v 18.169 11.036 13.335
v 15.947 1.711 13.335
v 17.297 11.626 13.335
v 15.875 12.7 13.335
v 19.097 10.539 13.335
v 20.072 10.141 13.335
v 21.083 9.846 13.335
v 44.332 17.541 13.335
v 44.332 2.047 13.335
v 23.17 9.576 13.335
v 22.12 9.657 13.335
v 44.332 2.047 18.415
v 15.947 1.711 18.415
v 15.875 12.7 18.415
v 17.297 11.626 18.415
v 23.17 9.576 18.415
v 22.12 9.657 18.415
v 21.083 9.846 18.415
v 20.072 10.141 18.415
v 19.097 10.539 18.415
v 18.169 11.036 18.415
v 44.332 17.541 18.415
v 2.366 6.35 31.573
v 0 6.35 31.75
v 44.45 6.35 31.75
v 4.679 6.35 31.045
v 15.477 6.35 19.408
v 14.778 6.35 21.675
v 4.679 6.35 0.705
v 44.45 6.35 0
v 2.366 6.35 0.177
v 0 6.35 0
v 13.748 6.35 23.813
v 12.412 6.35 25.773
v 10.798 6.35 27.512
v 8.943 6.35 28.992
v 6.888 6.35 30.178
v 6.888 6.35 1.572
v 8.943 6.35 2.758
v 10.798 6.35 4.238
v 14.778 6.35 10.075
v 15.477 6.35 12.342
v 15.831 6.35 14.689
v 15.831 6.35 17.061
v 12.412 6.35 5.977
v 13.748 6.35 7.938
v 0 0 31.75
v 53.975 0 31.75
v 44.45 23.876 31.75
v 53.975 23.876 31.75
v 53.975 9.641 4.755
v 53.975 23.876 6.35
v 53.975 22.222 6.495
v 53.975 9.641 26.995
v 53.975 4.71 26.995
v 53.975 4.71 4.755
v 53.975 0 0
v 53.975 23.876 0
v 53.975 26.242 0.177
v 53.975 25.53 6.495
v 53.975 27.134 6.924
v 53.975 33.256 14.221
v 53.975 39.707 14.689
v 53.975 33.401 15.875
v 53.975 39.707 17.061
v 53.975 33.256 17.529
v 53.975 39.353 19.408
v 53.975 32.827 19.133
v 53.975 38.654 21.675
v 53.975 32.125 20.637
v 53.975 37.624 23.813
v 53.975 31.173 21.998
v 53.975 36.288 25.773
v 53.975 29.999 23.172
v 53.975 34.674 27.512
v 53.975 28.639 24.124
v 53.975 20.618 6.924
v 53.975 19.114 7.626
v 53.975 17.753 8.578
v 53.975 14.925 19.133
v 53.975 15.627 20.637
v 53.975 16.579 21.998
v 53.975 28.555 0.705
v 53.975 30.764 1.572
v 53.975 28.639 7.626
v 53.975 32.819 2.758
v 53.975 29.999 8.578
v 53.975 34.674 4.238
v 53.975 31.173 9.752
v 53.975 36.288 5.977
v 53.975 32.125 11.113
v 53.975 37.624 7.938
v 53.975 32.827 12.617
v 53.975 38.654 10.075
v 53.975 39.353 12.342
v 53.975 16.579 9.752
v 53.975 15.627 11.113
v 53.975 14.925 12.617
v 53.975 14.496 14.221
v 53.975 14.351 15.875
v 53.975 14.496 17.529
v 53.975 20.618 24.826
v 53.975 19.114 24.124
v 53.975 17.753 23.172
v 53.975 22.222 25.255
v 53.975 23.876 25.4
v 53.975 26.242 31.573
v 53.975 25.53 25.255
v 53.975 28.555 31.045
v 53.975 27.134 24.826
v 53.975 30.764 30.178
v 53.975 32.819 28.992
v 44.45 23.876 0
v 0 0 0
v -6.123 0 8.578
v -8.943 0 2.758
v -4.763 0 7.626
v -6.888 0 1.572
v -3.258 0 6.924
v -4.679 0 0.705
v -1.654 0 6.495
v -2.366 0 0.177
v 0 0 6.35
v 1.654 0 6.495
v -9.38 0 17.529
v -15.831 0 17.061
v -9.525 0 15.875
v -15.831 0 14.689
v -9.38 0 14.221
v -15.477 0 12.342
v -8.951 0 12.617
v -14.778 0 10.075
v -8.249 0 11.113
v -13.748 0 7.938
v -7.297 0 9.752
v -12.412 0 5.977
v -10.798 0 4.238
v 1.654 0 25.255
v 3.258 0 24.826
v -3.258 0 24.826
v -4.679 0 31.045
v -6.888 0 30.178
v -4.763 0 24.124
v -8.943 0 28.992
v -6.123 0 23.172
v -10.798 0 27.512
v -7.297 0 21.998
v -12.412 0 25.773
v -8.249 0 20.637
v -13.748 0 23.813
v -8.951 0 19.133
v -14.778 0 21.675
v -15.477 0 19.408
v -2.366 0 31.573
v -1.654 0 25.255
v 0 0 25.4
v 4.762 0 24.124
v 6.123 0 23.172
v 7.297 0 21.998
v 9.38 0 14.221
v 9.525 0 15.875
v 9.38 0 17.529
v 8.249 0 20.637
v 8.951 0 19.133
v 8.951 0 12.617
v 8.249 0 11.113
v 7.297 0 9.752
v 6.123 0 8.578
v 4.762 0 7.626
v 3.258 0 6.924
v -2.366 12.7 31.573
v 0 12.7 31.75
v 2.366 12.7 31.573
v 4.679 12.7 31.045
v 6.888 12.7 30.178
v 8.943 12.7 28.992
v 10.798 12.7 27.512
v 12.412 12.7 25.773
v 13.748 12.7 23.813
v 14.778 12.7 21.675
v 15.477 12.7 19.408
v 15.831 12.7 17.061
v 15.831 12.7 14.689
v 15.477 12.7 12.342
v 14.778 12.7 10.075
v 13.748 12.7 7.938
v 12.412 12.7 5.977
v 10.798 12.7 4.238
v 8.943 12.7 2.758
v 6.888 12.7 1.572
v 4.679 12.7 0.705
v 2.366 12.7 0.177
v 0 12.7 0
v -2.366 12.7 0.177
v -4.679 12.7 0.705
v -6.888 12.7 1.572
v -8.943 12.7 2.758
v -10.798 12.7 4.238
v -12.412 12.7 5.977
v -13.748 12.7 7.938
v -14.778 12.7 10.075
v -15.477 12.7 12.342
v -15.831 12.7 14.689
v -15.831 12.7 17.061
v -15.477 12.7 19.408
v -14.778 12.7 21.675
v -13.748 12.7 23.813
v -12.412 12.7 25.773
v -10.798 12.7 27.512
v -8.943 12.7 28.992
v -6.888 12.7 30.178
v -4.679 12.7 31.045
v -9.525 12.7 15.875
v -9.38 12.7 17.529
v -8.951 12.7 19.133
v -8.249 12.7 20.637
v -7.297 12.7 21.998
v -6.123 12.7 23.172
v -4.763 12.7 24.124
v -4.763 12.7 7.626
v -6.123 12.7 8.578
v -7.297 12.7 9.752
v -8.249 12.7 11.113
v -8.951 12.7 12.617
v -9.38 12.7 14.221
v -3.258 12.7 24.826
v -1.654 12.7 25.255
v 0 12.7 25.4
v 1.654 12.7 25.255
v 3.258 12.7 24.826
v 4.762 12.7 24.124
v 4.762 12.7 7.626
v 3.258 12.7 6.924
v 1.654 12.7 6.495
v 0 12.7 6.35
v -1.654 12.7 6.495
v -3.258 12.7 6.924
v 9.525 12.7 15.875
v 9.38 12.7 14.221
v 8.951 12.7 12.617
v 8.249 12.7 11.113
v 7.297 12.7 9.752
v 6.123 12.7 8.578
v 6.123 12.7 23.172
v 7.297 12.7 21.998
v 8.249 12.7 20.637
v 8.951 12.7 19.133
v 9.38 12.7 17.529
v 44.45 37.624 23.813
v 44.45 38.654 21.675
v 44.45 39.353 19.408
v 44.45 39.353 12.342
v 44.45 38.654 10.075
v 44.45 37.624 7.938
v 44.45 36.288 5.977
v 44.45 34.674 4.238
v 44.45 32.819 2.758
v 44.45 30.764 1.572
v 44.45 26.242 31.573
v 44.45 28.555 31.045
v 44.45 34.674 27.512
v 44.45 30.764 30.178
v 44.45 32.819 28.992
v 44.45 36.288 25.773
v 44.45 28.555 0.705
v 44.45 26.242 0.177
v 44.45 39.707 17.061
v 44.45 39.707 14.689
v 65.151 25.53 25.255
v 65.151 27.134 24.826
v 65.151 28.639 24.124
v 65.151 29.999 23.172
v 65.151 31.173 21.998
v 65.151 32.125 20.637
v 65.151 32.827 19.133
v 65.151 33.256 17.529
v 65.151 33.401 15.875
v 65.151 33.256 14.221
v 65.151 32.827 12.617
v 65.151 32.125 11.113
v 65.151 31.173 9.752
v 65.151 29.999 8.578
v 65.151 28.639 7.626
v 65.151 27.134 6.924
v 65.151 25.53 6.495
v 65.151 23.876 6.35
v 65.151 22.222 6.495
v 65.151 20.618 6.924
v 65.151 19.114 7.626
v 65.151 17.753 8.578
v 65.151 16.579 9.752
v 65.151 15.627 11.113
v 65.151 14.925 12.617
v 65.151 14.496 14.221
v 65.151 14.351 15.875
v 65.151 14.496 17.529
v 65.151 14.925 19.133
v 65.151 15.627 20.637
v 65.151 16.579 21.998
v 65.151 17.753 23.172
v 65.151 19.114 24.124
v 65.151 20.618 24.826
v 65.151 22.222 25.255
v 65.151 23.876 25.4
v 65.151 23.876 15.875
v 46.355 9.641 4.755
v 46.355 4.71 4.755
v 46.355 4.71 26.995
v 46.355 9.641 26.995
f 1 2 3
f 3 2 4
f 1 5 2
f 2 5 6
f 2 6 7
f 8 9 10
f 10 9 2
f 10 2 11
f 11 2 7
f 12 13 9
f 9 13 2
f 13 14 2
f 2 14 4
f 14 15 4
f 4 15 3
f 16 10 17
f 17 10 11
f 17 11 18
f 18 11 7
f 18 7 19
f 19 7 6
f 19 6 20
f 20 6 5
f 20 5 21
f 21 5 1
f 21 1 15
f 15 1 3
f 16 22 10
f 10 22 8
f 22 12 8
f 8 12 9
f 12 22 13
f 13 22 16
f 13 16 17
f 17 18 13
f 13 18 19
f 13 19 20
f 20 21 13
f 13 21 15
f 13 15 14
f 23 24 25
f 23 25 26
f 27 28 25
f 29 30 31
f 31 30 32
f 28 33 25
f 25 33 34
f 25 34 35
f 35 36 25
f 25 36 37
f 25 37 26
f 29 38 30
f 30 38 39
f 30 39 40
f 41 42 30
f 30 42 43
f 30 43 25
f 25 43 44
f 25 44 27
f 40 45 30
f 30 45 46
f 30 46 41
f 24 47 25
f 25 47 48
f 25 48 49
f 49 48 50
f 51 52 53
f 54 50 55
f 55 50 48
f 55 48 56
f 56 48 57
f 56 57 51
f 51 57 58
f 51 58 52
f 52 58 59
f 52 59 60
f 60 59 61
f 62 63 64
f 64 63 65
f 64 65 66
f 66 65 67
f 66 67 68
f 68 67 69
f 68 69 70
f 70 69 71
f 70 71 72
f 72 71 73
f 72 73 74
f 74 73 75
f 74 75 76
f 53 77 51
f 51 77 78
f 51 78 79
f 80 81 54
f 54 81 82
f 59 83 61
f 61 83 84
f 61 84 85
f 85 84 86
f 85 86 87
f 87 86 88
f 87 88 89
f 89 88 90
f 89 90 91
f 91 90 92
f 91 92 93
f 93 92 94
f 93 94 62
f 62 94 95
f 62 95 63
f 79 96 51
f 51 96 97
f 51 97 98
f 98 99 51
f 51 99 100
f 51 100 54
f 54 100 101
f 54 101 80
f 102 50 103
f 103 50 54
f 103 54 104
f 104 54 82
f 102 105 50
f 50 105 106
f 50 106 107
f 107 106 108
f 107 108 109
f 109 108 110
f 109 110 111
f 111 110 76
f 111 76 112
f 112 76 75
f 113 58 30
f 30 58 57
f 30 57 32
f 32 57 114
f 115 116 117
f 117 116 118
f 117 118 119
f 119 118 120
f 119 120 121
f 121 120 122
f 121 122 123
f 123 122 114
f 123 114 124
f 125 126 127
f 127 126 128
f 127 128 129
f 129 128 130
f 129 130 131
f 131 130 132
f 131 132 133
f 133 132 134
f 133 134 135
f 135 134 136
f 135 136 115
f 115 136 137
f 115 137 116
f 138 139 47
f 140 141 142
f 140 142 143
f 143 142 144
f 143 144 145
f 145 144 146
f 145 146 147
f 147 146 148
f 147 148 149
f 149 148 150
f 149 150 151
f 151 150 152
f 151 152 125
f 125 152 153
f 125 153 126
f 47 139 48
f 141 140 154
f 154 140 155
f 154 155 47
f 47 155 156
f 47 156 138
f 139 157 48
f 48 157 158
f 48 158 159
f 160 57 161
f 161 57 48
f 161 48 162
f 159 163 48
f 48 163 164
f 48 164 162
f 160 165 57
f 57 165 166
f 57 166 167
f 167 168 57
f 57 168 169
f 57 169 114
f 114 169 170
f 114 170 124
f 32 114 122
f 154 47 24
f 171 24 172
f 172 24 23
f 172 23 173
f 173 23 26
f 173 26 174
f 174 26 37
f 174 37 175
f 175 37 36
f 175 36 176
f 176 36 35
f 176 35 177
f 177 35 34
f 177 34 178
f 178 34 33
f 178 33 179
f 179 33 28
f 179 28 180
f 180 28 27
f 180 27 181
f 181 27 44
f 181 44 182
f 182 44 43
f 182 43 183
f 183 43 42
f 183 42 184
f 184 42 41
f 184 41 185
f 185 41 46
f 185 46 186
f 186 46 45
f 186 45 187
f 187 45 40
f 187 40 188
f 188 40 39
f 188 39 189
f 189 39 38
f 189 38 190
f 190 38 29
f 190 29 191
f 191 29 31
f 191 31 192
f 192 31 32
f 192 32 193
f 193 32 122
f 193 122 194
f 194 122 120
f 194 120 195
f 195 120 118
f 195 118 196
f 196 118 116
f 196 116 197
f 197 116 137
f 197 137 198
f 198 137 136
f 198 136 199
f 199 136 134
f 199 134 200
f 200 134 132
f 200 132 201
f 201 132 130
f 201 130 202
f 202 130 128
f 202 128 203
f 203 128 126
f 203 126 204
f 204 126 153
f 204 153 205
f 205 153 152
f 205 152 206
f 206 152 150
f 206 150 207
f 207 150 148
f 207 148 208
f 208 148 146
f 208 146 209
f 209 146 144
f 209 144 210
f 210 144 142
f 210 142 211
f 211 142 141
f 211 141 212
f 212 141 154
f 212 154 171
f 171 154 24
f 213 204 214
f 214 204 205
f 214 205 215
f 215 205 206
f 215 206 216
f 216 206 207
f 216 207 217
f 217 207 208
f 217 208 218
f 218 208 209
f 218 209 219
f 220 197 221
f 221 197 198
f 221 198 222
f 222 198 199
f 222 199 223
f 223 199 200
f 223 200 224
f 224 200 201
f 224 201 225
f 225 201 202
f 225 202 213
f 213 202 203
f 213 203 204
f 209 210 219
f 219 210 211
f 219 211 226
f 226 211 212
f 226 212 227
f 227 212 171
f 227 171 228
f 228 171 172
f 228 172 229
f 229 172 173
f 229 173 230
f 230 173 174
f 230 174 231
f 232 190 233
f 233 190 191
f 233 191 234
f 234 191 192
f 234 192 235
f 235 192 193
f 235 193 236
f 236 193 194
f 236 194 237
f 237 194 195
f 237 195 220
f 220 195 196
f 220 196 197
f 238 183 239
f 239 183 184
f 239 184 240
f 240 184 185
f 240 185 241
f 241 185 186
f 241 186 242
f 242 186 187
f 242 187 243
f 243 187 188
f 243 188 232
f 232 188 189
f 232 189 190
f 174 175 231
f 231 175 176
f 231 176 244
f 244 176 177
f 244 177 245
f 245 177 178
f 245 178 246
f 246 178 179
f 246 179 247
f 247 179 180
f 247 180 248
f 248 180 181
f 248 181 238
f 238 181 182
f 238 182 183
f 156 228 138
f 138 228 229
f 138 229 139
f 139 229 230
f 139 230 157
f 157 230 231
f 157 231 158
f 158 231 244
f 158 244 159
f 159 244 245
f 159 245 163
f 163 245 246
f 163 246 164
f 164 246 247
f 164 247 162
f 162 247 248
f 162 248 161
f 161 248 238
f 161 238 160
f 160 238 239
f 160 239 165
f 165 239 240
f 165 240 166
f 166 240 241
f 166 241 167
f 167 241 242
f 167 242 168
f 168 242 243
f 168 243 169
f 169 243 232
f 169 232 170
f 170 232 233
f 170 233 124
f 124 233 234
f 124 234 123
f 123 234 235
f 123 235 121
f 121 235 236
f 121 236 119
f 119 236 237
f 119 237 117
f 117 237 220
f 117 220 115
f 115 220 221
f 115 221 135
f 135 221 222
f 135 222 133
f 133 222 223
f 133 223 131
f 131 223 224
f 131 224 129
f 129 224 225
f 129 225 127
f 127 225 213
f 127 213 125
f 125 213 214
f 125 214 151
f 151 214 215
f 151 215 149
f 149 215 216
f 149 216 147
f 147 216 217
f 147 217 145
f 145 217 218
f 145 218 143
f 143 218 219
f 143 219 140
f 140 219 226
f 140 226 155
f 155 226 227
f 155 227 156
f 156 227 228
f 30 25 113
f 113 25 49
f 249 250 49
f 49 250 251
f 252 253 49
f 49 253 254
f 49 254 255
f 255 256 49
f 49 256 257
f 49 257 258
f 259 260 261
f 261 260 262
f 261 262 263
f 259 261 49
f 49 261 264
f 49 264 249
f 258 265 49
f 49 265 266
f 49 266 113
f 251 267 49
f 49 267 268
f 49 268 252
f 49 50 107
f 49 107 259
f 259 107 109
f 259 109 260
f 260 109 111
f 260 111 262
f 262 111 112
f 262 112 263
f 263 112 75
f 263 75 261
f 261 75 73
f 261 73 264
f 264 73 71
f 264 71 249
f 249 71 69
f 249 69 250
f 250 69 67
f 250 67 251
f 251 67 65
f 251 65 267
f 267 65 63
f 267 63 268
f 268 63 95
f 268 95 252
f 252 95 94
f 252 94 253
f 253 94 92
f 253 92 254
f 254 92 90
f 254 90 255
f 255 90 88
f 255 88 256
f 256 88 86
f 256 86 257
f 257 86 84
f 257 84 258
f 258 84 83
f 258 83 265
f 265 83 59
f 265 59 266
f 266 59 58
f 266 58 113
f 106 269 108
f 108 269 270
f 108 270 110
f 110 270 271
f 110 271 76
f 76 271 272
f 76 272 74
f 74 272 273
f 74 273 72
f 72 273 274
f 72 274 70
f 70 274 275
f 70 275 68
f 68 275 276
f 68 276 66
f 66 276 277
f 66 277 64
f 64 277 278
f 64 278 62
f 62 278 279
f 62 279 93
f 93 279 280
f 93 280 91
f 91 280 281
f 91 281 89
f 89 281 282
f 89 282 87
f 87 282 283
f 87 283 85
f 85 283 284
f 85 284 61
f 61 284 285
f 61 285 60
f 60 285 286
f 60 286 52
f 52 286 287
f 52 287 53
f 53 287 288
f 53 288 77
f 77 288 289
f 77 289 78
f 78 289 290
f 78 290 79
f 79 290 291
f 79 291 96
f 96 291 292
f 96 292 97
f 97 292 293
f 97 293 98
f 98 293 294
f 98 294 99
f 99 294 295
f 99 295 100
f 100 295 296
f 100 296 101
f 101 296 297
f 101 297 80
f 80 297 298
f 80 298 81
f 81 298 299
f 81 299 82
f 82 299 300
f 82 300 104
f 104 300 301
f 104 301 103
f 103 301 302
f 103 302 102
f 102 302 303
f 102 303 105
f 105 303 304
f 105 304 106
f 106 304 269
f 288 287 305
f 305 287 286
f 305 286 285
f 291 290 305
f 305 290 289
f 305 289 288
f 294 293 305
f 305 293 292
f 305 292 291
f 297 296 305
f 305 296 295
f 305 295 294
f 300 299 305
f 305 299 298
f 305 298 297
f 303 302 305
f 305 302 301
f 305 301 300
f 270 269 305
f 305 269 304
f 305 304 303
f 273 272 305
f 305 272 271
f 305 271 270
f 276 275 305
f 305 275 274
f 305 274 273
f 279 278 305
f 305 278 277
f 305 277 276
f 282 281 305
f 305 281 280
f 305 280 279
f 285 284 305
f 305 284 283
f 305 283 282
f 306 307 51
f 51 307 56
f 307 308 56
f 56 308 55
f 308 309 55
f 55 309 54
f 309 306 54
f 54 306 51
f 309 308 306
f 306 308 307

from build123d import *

# Parameters (mm, degrees)
SKETCH1_W                 = 53.975
SKETCH1_H                 = 31.75
BOSS_EXTRUDE1_DEPTH       = 6.35
SKETCH2_R                 = 15.875
BOSS_EXTRUDE2_DEPTH       = 12.7
SKETCH3_R                 = 9.525
CUT_EXTRUDE1_DEPTH        = 12.7
SKETCH4_W                 = 9.525
SKETCH4_H                 = 31.75
BOSS_EXTRUDE4_DEPTH       = 17.526
SKETCH6_R                 = 15.875
BOSS_EXTRUDE5_DEPTH       = 9.525
SKETCH7_R                 = 9.525
BOSS_EXTRUDE6_DEPTH       = 11.176
BOSS_EXTRUDE11_DEPTH      = 2.54
BOSS_EXTRUDE11_DEPTH_BACK = 2.54
SKETCH10_W                = 22.24003272
SKETCH10_H                = 4.930670522
CUT_EXTRUDE2_DEPTH        = 7.62


with BuildPart() as part:
    # Sketch1 → Boss-Extrude1 (new body)
    with BuildSketch(Plane(origin=(0, 0, 0), x_dir=(1, 0, 0), z_dir=(0, 1, 0))):
        with Locations((26.9875, -15.875)):
            Rectangle(SKETCH1_W, SKETCH1_H)
    extrude(amount=BOSS_EXTRUDE1_DEPTH)

    # Sketch2 → Boss-Extrude2 (add)
    with BuildSketch(Plane(origin=(0, 0, 0), x_dir=(1, 0, 0), z_dir=(0, 1, 0))):
        with Locations(Location((0, -15.875, 0), (0, 0, 270))):
            Circle(SKETCH2_R)
    extrude(amount=BOSS_EXTRUDE2_DEPTH)

    # Sketch3 → Cut-Extrude1 (cut)
    with BuildSketch(Plane(origin=(0, 12.7, 0), x_dir=(1, 0, 0), z_dir=(0, 1, 0))):
        with Locations(Location((0, -15.875, 0), (0, 0, 270))):
            Circle(SKETCH3_R)
    extrude(amount=-CUT_EXTRUDE1_DEPTH, mode=Mode.SUBTRACT)

    # Sketch4 → Boss-Extrude4 (add)
    with BuildSketch(Plane(origin=(0, 6.35, 0), x_dir=(1, 0, 0), z_dir=(0, 1, 0))):
        with Locations((49.2125, -15.875)):
            Rectangle(SKETCH4_W, SKETCH4_H)
    extrude(amount=BOSS_EXTRUDE4_DEPTH)

    # Sketch6 → Boss-Extrude5 (add)
    with BuildSketch(Plane(origin=(53.975, 0, 0), x_dir=(0, 0, -1), z_dir=(1, 0, 0))):
        with Locations((-15.875, 23.876)):
            Circle(SKETCH6_R)
    extrude(amount=-BOSS_EXTRUDE5_DEPTH)

    # Sketch7 → Boss-Extrude6 (add)
    with BuildSketch(Plane(origin=(53.975, 0, 0), x_dir=(0, 0, -1), z_dir=(1, 0, 0))):
        with Locations(Location((-15.875, 23.876, 0), (0, 0, 180))):
            Circle(SKETCH7_R)
    extrude(amount=BOSS_EXTRUDE6_DEPTH)

    # Sketch10 → Cut-Extrude2 (cut)
    with BuildSketch(Plane(origin=(53.975, 0, 0), x_dir=(0, 0, -1), z_dir=(1, 0, 0))):
        with Locations((-15.875, 7.1755)):
            Rectangle(SKETCH10_W, SKETCH10_H)
    extrude(amount=-CUT_EXTRUDE2_DEPTH, mode=Mode.SUBTRACT)


with BuildPart() as body_2:
    # 3DSketch1 → Boss-Extrude11 (new, two sides: drawn at the far end of the back side and taken through both)
    with BuildSketch(Plane(origin=(15.946988355, 1.710649259, 15.875), x_dir=(0.8733587666153865, 0.4870774730738951, 0), z_dir=(0, 0, -1)).offset(-BOSS_EXTRUDE11_DEPTH_BACK)):
        with BuildLine():
            Line((0, 0), (24.954571984, 13.53182073))
            Line((24.954571984, 13.53182073), (32.501350351, 0))
            Line((32.501350351, 0), (10.139180944, -3.351635604))
            ThreePointArc((10.139180944, -3.351635604), (7.709103711, -5.353102519), (6.008377613, -8.002380894))
            Line((6.008377613, -8.002380894), (5.289793529, -9.632709715))
            Line((5.289793529, -9.632709715), (0, 0))
        make_face()
    extrude(amount=BOSS_EXTRUDE11_DEPTH + BOSS_EXTRUDE11_DEPTH_BACK)


solid = Compound([part.part, body_2.part])
